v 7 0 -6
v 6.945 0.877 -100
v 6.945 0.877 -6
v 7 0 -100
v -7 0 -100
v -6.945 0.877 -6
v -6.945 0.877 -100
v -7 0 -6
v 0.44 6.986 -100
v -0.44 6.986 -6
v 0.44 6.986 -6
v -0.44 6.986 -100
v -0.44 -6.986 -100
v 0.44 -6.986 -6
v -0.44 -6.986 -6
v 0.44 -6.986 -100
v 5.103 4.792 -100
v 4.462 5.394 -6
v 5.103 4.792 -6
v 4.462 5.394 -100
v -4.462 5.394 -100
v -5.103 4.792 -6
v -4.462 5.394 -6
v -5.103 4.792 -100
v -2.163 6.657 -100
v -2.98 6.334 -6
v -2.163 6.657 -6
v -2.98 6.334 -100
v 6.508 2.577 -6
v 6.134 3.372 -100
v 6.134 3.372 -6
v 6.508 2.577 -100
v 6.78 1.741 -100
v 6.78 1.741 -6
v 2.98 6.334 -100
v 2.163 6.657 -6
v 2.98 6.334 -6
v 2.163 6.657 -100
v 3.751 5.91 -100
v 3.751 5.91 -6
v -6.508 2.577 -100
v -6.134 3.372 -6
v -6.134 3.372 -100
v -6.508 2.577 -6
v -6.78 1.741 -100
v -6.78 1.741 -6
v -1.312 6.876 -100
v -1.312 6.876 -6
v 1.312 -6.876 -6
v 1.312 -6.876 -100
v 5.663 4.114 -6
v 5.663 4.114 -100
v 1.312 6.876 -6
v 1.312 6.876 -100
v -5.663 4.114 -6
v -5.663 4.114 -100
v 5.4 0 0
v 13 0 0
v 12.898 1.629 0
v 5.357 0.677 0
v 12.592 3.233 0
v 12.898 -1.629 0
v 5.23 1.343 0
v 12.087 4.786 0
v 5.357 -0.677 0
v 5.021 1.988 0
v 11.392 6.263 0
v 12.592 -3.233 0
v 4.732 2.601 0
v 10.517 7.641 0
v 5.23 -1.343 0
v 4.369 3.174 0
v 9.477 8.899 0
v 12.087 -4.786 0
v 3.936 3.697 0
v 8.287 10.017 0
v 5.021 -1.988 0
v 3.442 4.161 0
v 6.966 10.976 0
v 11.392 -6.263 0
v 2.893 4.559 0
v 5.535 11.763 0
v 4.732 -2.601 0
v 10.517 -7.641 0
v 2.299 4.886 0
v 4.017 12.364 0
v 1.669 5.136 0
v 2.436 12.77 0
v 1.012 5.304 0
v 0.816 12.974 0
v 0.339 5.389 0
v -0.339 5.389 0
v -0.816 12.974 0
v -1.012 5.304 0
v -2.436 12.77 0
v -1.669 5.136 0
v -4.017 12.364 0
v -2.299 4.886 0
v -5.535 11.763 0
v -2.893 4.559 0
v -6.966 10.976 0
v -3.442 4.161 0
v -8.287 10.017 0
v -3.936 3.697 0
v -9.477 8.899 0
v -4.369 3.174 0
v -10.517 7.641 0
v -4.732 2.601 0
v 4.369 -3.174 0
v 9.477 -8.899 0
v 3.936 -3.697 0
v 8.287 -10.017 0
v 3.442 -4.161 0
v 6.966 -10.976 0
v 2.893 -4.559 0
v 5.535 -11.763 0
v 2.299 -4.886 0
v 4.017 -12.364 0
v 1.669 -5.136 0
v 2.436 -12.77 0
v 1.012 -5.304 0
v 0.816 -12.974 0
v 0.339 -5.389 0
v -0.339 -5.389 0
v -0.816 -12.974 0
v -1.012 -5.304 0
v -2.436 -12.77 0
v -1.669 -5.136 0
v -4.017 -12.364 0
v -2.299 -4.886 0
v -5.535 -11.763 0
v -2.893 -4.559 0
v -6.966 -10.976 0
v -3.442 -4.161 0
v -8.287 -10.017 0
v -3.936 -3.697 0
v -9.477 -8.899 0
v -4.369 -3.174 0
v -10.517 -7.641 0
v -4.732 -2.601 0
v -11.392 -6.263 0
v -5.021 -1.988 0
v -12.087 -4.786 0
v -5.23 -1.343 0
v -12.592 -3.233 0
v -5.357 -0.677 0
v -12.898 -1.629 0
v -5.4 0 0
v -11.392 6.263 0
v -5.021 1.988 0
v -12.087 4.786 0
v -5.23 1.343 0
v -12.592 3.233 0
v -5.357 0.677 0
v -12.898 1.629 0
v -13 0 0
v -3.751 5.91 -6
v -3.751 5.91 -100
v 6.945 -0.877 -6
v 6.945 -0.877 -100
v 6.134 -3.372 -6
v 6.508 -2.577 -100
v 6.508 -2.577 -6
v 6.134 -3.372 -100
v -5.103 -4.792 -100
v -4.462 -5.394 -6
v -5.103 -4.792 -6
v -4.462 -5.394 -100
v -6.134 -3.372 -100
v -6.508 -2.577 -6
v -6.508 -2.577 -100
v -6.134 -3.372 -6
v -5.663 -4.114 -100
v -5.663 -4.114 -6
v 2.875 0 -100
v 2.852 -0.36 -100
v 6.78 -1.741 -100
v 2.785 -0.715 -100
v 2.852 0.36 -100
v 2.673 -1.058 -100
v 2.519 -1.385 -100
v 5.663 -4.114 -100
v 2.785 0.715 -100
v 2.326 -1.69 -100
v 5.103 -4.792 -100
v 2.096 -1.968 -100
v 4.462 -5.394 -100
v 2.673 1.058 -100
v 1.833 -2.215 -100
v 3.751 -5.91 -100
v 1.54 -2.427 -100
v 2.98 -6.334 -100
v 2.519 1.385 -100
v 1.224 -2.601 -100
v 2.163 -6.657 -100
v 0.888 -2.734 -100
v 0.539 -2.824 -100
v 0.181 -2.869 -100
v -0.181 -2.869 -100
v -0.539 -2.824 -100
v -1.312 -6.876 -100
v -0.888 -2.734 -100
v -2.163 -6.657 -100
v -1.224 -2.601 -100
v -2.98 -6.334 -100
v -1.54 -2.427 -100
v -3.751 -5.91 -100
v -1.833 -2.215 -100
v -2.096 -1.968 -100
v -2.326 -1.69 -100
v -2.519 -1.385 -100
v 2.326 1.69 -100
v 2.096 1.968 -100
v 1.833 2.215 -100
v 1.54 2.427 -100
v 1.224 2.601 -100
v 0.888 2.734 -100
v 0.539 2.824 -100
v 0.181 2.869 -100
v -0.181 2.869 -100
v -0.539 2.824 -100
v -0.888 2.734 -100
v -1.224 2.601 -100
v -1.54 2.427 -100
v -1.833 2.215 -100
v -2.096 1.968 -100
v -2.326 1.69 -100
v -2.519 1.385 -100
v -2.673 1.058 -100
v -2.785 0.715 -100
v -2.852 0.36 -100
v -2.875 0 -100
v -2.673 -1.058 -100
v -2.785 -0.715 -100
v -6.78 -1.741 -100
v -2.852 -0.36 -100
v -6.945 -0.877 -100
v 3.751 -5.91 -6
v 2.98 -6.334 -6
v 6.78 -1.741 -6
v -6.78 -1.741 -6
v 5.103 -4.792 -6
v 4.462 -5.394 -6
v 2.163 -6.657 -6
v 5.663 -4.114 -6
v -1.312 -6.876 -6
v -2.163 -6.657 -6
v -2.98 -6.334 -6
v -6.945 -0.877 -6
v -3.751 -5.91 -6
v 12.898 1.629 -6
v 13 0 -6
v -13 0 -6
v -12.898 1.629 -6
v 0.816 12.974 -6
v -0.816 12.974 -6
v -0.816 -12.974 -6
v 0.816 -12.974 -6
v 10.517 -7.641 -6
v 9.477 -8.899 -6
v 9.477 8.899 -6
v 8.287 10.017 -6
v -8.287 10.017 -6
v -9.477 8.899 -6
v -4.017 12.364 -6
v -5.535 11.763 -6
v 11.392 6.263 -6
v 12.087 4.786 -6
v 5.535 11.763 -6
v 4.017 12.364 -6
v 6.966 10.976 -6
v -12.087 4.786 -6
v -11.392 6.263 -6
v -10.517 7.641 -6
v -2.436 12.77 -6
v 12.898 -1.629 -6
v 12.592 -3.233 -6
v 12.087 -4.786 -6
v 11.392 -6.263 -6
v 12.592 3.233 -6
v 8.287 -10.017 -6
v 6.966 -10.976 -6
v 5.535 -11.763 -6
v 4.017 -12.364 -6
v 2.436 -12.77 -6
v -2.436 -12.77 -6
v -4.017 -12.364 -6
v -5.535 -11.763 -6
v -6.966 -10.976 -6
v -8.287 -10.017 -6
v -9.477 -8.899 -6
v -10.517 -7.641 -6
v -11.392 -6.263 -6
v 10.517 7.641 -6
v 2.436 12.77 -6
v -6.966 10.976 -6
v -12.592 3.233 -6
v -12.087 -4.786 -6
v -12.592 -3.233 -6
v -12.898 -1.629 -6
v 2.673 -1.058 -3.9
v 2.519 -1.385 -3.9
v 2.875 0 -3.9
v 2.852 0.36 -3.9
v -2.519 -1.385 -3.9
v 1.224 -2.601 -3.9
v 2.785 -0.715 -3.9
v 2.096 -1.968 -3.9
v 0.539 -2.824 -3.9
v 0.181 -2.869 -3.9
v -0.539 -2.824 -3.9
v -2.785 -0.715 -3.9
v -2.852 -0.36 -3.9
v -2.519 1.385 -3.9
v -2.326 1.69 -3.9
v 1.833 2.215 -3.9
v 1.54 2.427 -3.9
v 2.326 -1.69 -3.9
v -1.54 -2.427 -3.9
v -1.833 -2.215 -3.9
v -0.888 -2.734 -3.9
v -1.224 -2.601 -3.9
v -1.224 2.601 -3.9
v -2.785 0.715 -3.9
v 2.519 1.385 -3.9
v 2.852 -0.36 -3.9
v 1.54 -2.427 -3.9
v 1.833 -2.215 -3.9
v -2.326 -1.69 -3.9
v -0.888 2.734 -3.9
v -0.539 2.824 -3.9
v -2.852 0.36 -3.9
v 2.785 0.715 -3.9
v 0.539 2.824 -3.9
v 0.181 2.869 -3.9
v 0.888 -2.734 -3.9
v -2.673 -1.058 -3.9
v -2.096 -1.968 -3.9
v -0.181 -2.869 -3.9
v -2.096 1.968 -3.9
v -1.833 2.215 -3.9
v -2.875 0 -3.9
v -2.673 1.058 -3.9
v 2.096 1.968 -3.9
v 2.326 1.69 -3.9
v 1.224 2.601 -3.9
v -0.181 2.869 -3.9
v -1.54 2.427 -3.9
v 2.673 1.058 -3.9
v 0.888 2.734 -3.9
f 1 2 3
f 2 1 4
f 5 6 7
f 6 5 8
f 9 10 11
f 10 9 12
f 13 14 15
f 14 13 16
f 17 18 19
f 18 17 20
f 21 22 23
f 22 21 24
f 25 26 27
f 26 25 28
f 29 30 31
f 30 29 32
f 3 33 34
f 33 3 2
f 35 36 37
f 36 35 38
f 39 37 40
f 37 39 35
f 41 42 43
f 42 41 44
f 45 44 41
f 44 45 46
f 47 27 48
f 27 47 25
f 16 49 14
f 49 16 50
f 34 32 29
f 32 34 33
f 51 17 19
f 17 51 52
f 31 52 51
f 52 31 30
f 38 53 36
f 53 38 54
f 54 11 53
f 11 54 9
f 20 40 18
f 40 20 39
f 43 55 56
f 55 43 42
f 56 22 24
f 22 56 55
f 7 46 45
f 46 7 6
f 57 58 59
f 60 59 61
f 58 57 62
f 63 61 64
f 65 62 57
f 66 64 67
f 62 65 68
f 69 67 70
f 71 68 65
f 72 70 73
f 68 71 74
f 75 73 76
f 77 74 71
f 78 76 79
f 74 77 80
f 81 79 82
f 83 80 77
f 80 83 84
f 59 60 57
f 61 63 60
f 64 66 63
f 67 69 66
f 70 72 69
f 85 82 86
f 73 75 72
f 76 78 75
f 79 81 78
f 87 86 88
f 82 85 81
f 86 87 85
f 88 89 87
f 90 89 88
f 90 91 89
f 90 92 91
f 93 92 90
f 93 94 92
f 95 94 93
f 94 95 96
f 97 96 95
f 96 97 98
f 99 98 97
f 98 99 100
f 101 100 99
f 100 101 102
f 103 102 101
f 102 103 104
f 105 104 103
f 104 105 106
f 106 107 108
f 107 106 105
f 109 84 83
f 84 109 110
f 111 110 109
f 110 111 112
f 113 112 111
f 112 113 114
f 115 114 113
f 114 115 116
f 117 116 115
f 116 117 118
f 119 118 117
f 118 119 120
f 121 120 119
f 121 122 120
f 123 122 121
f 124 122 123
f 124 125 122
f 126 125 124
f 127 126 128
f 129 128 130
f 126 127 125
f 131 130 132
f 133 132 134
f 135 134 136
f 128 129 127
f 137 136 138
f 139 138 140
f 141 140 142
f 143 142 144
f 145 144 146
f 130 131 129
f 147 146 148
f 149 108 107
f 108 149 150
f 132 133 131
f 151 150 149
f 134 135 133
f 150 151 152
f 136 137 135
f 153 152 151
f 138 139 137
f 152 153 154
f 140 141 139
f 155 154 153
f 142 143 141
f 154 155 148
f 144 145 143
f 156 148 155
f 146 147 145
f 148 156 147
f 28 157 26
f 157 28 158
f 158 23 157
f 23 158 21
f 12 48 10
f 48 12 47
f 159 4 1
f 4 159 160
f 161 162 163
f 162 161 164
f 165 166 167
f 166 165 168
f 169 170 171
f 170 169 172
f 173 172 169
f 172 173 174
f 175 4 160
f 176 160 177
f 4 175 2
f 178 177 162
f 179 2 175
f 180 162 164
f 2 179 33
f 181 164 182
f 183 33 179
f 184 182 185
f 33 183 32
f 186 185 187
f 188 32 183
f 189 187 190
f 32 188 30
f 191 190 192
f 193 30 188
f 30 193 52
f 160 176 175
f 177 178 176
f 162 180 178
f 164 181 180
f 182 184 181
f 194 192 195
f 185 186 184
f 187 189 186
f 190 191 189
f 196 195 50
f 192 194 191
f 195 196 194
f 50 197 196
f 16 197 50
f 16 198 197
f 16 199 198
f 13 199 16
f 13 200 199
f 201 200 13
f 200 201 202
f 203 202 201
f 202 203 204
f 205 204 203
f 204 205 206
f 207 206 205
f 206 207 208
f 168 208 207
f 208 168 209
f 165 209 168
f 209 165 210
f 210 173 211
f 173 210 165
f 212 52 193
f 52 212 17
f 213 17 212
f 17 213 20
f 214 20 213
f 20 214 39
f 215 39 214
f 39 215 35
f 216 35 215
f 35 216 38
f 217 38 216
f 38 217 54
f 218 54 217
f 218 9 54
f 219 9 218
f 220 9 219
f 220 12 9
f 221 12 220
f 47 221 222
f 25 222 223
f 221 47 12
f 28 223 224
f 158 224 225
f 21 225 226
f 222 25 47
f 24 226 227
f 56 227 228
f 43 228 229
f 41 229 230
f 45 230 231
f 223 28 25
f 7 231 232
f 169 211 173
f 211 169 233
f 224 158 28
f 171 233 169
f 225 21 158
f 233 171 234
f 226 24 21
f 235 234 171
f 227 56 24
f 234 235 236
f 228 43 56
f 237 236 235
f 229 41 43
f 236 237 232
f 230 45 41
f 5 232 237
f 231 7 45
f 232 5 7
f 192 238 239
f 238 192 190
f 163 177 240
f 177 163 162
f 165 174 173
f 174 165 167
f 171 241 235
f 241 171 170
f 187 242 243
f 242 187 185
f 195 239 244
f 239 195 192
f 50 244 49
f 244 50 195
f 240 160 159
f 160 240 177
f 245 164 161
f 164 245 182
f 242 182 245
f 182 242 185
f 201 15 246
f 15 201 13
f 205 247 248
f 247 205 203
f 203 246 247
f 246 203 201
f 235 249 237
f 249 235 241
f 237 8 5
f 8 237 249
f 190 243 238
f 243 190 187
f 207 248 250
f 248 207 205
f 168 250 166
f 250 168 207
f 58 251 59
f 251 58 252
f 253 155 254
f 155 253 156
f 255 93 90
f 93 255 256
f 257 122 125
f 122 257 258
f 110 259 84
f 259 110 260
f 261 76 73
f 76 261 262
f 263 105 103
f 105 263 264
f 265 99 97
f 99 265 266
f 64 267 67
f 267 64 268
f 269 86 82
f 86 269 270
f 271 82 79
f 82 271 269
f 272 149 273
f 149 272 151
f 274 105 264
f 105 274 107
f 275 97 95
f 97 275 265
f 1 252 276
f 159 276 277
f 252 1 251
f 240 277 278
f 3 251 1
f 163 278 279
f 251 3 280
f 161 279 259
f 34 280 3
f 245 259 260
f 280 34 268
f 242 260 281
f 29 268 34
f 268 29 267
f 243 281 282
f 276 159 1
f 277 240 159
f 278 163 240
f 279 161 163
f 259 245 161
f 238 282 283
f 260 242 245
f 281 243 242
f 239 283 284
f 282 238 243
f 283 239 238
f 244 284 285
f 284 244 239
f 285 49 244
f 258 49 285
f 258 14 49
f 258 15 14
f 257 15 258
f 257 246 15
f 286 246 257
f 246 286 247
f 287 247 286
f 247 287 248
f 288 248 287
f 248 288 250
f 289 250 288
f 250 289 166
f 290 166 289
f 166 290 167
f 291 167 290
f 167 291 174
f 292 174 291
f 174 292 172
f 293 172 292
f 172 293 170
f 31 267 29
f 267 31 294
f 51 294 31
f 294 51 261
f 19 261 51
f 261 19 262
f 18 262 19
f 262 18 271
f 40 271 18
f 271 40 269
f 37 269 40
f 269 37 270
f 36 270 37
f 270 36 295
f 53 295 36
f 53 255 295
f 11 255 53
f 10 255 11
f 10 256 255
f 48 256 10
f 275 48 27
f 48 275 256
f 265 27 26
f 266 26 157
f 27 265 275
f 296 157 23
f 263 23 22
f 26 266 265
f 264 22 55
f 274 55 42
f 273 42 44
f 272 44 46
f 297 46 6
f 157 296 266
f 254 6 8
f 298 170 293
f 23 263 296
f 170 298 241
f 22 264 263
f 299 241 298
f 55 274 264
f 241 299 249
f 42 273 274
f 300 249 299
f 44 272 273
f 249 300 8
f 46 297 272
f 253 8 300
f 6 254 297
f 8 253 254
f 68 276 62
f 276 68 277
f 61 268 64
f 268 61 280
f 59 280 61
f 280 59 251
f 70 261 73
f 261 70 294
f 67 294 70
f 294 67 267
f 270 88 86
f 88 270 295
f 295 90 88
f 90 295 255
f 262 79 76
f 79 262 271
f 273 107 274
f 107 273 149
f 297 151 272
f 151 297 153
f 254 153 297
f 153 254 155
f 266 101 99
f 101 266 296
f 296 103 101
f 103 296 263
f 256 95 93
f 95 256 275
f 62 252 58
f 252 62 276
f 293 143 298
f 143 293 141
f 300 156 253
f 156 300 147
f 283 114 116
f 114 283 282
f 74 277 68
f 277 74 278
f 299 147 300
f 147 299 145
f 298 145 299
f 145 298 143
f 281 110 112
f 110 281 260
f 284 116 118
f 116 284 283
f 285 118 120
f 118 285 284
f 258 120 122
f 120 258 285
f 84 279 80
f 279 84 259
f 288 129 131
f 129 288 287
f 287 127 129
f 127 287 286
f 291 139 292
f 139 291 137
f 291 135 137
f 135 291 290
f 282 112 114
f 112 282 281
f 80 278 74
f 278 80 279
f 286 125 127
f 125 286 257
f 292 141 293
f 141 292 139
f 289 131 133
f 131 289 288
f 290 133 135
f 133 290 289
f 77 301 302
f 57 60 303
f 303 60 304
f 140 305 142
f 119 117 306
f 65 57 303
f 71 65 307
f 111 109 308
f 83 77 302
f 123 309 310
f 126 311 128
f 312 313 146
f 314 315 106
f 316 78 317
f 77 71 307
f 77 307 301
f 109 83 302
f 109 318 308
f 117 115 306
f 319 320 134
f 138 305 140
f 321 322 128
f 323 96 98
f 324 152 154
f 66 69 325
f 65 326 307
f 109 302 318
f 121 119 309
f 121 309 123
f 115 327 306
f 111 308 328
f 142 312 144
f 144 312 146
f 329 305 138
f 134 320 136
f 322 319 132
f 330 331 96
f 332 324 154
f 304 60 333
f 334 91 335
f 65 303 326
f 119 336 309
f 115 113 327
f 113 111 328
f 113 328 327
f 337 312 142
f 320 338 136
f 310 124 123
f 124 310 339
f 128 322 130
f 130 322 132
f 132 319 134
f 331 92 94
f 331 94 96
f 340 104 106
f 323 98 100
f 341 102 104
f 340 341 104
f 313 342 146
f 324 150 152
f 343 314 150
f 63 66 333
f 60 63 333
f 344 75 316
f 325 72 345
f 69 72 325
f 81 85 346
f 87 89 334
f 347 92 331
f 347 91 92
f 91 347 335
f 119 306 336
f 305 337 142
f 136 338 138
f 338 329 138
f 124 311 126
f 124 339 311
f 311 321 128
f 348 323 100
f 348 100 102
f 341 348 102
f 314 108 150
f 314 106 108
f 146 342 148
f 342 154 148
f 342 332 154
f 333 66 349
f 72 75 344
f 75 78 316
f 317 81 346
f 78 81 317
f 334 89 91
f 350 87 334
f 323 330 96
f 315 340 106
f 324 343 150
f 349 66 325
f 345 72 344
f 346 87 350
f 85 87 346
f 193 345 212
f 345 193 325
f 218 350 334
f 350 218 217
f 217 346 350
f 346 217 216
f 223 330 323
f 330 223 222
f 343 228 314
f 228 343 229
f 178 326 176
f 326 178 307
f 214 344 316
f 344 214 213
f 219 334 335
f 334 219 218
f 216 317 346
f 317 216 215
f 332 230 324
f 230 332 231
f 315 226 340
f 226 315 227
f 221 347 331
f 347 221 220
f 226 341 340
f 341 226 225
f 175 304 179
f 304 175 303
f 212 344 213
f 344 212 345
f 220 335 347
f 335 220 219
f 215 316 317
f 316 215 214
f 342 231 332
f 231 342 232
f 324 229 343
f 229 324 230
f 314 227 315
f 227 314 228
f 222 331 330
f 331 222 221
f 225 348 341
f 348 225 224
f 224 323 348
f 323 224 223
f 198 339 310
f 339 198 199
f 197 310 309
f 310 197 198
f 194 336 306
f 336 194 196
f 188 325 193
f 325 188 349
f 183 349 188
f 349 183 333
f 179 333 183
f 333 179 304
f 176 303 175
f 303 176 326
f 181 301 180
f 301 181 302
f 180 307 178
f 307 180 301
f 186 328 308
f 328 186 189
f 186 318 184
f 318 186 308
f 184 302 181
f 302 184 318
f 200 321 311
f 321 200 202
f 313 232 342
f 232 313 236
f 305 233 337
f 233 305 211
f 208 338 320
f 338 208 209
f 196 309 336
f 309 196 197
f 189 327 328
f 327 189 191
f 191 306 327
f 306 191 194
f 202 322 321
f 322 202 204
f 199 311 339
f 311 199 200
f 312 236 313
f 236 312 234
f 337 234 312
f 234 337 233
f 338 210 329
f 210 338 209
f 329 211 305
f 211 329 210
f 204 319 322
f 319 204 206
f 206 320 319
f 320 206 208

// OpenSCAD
$fn = 50;


difference() {
	union() {
		translate(v = [0, 0, -100.0000000000]) {
			cylinder(h = 100, r = 7.0000000000);
		}
		translate(v = [0, 0, -6.0000000000]) {
			cylinder(h = 6, r = 13.0000000000);
		}
	}
	union() {
		translate(v = [0, 0, 0]) {
			rotate(a = [0, 0, 0]) {
				difference() {
					union() {
						#translate(v = [0, 0, -100.0000000000]) {
							cylinder(h = 100, r = 2.6000000000);
						}
						#translate(v = [0, 0, -3.9000000000]) {
							cylinder(h = 3.9000000000, r1 = 2.8750000000, r2 = 5.4000000000);
						}
						#translate(v = [0, 0, -100.0000000000]) {
							cylinder(h = 100, r = 2.8750000000);
						}
						#translate(v = [0, 0, -100.0000000000]) {
							cylinder(h = 100, r = 2.6000000000);
						}
					}
					union();
				}
			}
		}
	}
}
